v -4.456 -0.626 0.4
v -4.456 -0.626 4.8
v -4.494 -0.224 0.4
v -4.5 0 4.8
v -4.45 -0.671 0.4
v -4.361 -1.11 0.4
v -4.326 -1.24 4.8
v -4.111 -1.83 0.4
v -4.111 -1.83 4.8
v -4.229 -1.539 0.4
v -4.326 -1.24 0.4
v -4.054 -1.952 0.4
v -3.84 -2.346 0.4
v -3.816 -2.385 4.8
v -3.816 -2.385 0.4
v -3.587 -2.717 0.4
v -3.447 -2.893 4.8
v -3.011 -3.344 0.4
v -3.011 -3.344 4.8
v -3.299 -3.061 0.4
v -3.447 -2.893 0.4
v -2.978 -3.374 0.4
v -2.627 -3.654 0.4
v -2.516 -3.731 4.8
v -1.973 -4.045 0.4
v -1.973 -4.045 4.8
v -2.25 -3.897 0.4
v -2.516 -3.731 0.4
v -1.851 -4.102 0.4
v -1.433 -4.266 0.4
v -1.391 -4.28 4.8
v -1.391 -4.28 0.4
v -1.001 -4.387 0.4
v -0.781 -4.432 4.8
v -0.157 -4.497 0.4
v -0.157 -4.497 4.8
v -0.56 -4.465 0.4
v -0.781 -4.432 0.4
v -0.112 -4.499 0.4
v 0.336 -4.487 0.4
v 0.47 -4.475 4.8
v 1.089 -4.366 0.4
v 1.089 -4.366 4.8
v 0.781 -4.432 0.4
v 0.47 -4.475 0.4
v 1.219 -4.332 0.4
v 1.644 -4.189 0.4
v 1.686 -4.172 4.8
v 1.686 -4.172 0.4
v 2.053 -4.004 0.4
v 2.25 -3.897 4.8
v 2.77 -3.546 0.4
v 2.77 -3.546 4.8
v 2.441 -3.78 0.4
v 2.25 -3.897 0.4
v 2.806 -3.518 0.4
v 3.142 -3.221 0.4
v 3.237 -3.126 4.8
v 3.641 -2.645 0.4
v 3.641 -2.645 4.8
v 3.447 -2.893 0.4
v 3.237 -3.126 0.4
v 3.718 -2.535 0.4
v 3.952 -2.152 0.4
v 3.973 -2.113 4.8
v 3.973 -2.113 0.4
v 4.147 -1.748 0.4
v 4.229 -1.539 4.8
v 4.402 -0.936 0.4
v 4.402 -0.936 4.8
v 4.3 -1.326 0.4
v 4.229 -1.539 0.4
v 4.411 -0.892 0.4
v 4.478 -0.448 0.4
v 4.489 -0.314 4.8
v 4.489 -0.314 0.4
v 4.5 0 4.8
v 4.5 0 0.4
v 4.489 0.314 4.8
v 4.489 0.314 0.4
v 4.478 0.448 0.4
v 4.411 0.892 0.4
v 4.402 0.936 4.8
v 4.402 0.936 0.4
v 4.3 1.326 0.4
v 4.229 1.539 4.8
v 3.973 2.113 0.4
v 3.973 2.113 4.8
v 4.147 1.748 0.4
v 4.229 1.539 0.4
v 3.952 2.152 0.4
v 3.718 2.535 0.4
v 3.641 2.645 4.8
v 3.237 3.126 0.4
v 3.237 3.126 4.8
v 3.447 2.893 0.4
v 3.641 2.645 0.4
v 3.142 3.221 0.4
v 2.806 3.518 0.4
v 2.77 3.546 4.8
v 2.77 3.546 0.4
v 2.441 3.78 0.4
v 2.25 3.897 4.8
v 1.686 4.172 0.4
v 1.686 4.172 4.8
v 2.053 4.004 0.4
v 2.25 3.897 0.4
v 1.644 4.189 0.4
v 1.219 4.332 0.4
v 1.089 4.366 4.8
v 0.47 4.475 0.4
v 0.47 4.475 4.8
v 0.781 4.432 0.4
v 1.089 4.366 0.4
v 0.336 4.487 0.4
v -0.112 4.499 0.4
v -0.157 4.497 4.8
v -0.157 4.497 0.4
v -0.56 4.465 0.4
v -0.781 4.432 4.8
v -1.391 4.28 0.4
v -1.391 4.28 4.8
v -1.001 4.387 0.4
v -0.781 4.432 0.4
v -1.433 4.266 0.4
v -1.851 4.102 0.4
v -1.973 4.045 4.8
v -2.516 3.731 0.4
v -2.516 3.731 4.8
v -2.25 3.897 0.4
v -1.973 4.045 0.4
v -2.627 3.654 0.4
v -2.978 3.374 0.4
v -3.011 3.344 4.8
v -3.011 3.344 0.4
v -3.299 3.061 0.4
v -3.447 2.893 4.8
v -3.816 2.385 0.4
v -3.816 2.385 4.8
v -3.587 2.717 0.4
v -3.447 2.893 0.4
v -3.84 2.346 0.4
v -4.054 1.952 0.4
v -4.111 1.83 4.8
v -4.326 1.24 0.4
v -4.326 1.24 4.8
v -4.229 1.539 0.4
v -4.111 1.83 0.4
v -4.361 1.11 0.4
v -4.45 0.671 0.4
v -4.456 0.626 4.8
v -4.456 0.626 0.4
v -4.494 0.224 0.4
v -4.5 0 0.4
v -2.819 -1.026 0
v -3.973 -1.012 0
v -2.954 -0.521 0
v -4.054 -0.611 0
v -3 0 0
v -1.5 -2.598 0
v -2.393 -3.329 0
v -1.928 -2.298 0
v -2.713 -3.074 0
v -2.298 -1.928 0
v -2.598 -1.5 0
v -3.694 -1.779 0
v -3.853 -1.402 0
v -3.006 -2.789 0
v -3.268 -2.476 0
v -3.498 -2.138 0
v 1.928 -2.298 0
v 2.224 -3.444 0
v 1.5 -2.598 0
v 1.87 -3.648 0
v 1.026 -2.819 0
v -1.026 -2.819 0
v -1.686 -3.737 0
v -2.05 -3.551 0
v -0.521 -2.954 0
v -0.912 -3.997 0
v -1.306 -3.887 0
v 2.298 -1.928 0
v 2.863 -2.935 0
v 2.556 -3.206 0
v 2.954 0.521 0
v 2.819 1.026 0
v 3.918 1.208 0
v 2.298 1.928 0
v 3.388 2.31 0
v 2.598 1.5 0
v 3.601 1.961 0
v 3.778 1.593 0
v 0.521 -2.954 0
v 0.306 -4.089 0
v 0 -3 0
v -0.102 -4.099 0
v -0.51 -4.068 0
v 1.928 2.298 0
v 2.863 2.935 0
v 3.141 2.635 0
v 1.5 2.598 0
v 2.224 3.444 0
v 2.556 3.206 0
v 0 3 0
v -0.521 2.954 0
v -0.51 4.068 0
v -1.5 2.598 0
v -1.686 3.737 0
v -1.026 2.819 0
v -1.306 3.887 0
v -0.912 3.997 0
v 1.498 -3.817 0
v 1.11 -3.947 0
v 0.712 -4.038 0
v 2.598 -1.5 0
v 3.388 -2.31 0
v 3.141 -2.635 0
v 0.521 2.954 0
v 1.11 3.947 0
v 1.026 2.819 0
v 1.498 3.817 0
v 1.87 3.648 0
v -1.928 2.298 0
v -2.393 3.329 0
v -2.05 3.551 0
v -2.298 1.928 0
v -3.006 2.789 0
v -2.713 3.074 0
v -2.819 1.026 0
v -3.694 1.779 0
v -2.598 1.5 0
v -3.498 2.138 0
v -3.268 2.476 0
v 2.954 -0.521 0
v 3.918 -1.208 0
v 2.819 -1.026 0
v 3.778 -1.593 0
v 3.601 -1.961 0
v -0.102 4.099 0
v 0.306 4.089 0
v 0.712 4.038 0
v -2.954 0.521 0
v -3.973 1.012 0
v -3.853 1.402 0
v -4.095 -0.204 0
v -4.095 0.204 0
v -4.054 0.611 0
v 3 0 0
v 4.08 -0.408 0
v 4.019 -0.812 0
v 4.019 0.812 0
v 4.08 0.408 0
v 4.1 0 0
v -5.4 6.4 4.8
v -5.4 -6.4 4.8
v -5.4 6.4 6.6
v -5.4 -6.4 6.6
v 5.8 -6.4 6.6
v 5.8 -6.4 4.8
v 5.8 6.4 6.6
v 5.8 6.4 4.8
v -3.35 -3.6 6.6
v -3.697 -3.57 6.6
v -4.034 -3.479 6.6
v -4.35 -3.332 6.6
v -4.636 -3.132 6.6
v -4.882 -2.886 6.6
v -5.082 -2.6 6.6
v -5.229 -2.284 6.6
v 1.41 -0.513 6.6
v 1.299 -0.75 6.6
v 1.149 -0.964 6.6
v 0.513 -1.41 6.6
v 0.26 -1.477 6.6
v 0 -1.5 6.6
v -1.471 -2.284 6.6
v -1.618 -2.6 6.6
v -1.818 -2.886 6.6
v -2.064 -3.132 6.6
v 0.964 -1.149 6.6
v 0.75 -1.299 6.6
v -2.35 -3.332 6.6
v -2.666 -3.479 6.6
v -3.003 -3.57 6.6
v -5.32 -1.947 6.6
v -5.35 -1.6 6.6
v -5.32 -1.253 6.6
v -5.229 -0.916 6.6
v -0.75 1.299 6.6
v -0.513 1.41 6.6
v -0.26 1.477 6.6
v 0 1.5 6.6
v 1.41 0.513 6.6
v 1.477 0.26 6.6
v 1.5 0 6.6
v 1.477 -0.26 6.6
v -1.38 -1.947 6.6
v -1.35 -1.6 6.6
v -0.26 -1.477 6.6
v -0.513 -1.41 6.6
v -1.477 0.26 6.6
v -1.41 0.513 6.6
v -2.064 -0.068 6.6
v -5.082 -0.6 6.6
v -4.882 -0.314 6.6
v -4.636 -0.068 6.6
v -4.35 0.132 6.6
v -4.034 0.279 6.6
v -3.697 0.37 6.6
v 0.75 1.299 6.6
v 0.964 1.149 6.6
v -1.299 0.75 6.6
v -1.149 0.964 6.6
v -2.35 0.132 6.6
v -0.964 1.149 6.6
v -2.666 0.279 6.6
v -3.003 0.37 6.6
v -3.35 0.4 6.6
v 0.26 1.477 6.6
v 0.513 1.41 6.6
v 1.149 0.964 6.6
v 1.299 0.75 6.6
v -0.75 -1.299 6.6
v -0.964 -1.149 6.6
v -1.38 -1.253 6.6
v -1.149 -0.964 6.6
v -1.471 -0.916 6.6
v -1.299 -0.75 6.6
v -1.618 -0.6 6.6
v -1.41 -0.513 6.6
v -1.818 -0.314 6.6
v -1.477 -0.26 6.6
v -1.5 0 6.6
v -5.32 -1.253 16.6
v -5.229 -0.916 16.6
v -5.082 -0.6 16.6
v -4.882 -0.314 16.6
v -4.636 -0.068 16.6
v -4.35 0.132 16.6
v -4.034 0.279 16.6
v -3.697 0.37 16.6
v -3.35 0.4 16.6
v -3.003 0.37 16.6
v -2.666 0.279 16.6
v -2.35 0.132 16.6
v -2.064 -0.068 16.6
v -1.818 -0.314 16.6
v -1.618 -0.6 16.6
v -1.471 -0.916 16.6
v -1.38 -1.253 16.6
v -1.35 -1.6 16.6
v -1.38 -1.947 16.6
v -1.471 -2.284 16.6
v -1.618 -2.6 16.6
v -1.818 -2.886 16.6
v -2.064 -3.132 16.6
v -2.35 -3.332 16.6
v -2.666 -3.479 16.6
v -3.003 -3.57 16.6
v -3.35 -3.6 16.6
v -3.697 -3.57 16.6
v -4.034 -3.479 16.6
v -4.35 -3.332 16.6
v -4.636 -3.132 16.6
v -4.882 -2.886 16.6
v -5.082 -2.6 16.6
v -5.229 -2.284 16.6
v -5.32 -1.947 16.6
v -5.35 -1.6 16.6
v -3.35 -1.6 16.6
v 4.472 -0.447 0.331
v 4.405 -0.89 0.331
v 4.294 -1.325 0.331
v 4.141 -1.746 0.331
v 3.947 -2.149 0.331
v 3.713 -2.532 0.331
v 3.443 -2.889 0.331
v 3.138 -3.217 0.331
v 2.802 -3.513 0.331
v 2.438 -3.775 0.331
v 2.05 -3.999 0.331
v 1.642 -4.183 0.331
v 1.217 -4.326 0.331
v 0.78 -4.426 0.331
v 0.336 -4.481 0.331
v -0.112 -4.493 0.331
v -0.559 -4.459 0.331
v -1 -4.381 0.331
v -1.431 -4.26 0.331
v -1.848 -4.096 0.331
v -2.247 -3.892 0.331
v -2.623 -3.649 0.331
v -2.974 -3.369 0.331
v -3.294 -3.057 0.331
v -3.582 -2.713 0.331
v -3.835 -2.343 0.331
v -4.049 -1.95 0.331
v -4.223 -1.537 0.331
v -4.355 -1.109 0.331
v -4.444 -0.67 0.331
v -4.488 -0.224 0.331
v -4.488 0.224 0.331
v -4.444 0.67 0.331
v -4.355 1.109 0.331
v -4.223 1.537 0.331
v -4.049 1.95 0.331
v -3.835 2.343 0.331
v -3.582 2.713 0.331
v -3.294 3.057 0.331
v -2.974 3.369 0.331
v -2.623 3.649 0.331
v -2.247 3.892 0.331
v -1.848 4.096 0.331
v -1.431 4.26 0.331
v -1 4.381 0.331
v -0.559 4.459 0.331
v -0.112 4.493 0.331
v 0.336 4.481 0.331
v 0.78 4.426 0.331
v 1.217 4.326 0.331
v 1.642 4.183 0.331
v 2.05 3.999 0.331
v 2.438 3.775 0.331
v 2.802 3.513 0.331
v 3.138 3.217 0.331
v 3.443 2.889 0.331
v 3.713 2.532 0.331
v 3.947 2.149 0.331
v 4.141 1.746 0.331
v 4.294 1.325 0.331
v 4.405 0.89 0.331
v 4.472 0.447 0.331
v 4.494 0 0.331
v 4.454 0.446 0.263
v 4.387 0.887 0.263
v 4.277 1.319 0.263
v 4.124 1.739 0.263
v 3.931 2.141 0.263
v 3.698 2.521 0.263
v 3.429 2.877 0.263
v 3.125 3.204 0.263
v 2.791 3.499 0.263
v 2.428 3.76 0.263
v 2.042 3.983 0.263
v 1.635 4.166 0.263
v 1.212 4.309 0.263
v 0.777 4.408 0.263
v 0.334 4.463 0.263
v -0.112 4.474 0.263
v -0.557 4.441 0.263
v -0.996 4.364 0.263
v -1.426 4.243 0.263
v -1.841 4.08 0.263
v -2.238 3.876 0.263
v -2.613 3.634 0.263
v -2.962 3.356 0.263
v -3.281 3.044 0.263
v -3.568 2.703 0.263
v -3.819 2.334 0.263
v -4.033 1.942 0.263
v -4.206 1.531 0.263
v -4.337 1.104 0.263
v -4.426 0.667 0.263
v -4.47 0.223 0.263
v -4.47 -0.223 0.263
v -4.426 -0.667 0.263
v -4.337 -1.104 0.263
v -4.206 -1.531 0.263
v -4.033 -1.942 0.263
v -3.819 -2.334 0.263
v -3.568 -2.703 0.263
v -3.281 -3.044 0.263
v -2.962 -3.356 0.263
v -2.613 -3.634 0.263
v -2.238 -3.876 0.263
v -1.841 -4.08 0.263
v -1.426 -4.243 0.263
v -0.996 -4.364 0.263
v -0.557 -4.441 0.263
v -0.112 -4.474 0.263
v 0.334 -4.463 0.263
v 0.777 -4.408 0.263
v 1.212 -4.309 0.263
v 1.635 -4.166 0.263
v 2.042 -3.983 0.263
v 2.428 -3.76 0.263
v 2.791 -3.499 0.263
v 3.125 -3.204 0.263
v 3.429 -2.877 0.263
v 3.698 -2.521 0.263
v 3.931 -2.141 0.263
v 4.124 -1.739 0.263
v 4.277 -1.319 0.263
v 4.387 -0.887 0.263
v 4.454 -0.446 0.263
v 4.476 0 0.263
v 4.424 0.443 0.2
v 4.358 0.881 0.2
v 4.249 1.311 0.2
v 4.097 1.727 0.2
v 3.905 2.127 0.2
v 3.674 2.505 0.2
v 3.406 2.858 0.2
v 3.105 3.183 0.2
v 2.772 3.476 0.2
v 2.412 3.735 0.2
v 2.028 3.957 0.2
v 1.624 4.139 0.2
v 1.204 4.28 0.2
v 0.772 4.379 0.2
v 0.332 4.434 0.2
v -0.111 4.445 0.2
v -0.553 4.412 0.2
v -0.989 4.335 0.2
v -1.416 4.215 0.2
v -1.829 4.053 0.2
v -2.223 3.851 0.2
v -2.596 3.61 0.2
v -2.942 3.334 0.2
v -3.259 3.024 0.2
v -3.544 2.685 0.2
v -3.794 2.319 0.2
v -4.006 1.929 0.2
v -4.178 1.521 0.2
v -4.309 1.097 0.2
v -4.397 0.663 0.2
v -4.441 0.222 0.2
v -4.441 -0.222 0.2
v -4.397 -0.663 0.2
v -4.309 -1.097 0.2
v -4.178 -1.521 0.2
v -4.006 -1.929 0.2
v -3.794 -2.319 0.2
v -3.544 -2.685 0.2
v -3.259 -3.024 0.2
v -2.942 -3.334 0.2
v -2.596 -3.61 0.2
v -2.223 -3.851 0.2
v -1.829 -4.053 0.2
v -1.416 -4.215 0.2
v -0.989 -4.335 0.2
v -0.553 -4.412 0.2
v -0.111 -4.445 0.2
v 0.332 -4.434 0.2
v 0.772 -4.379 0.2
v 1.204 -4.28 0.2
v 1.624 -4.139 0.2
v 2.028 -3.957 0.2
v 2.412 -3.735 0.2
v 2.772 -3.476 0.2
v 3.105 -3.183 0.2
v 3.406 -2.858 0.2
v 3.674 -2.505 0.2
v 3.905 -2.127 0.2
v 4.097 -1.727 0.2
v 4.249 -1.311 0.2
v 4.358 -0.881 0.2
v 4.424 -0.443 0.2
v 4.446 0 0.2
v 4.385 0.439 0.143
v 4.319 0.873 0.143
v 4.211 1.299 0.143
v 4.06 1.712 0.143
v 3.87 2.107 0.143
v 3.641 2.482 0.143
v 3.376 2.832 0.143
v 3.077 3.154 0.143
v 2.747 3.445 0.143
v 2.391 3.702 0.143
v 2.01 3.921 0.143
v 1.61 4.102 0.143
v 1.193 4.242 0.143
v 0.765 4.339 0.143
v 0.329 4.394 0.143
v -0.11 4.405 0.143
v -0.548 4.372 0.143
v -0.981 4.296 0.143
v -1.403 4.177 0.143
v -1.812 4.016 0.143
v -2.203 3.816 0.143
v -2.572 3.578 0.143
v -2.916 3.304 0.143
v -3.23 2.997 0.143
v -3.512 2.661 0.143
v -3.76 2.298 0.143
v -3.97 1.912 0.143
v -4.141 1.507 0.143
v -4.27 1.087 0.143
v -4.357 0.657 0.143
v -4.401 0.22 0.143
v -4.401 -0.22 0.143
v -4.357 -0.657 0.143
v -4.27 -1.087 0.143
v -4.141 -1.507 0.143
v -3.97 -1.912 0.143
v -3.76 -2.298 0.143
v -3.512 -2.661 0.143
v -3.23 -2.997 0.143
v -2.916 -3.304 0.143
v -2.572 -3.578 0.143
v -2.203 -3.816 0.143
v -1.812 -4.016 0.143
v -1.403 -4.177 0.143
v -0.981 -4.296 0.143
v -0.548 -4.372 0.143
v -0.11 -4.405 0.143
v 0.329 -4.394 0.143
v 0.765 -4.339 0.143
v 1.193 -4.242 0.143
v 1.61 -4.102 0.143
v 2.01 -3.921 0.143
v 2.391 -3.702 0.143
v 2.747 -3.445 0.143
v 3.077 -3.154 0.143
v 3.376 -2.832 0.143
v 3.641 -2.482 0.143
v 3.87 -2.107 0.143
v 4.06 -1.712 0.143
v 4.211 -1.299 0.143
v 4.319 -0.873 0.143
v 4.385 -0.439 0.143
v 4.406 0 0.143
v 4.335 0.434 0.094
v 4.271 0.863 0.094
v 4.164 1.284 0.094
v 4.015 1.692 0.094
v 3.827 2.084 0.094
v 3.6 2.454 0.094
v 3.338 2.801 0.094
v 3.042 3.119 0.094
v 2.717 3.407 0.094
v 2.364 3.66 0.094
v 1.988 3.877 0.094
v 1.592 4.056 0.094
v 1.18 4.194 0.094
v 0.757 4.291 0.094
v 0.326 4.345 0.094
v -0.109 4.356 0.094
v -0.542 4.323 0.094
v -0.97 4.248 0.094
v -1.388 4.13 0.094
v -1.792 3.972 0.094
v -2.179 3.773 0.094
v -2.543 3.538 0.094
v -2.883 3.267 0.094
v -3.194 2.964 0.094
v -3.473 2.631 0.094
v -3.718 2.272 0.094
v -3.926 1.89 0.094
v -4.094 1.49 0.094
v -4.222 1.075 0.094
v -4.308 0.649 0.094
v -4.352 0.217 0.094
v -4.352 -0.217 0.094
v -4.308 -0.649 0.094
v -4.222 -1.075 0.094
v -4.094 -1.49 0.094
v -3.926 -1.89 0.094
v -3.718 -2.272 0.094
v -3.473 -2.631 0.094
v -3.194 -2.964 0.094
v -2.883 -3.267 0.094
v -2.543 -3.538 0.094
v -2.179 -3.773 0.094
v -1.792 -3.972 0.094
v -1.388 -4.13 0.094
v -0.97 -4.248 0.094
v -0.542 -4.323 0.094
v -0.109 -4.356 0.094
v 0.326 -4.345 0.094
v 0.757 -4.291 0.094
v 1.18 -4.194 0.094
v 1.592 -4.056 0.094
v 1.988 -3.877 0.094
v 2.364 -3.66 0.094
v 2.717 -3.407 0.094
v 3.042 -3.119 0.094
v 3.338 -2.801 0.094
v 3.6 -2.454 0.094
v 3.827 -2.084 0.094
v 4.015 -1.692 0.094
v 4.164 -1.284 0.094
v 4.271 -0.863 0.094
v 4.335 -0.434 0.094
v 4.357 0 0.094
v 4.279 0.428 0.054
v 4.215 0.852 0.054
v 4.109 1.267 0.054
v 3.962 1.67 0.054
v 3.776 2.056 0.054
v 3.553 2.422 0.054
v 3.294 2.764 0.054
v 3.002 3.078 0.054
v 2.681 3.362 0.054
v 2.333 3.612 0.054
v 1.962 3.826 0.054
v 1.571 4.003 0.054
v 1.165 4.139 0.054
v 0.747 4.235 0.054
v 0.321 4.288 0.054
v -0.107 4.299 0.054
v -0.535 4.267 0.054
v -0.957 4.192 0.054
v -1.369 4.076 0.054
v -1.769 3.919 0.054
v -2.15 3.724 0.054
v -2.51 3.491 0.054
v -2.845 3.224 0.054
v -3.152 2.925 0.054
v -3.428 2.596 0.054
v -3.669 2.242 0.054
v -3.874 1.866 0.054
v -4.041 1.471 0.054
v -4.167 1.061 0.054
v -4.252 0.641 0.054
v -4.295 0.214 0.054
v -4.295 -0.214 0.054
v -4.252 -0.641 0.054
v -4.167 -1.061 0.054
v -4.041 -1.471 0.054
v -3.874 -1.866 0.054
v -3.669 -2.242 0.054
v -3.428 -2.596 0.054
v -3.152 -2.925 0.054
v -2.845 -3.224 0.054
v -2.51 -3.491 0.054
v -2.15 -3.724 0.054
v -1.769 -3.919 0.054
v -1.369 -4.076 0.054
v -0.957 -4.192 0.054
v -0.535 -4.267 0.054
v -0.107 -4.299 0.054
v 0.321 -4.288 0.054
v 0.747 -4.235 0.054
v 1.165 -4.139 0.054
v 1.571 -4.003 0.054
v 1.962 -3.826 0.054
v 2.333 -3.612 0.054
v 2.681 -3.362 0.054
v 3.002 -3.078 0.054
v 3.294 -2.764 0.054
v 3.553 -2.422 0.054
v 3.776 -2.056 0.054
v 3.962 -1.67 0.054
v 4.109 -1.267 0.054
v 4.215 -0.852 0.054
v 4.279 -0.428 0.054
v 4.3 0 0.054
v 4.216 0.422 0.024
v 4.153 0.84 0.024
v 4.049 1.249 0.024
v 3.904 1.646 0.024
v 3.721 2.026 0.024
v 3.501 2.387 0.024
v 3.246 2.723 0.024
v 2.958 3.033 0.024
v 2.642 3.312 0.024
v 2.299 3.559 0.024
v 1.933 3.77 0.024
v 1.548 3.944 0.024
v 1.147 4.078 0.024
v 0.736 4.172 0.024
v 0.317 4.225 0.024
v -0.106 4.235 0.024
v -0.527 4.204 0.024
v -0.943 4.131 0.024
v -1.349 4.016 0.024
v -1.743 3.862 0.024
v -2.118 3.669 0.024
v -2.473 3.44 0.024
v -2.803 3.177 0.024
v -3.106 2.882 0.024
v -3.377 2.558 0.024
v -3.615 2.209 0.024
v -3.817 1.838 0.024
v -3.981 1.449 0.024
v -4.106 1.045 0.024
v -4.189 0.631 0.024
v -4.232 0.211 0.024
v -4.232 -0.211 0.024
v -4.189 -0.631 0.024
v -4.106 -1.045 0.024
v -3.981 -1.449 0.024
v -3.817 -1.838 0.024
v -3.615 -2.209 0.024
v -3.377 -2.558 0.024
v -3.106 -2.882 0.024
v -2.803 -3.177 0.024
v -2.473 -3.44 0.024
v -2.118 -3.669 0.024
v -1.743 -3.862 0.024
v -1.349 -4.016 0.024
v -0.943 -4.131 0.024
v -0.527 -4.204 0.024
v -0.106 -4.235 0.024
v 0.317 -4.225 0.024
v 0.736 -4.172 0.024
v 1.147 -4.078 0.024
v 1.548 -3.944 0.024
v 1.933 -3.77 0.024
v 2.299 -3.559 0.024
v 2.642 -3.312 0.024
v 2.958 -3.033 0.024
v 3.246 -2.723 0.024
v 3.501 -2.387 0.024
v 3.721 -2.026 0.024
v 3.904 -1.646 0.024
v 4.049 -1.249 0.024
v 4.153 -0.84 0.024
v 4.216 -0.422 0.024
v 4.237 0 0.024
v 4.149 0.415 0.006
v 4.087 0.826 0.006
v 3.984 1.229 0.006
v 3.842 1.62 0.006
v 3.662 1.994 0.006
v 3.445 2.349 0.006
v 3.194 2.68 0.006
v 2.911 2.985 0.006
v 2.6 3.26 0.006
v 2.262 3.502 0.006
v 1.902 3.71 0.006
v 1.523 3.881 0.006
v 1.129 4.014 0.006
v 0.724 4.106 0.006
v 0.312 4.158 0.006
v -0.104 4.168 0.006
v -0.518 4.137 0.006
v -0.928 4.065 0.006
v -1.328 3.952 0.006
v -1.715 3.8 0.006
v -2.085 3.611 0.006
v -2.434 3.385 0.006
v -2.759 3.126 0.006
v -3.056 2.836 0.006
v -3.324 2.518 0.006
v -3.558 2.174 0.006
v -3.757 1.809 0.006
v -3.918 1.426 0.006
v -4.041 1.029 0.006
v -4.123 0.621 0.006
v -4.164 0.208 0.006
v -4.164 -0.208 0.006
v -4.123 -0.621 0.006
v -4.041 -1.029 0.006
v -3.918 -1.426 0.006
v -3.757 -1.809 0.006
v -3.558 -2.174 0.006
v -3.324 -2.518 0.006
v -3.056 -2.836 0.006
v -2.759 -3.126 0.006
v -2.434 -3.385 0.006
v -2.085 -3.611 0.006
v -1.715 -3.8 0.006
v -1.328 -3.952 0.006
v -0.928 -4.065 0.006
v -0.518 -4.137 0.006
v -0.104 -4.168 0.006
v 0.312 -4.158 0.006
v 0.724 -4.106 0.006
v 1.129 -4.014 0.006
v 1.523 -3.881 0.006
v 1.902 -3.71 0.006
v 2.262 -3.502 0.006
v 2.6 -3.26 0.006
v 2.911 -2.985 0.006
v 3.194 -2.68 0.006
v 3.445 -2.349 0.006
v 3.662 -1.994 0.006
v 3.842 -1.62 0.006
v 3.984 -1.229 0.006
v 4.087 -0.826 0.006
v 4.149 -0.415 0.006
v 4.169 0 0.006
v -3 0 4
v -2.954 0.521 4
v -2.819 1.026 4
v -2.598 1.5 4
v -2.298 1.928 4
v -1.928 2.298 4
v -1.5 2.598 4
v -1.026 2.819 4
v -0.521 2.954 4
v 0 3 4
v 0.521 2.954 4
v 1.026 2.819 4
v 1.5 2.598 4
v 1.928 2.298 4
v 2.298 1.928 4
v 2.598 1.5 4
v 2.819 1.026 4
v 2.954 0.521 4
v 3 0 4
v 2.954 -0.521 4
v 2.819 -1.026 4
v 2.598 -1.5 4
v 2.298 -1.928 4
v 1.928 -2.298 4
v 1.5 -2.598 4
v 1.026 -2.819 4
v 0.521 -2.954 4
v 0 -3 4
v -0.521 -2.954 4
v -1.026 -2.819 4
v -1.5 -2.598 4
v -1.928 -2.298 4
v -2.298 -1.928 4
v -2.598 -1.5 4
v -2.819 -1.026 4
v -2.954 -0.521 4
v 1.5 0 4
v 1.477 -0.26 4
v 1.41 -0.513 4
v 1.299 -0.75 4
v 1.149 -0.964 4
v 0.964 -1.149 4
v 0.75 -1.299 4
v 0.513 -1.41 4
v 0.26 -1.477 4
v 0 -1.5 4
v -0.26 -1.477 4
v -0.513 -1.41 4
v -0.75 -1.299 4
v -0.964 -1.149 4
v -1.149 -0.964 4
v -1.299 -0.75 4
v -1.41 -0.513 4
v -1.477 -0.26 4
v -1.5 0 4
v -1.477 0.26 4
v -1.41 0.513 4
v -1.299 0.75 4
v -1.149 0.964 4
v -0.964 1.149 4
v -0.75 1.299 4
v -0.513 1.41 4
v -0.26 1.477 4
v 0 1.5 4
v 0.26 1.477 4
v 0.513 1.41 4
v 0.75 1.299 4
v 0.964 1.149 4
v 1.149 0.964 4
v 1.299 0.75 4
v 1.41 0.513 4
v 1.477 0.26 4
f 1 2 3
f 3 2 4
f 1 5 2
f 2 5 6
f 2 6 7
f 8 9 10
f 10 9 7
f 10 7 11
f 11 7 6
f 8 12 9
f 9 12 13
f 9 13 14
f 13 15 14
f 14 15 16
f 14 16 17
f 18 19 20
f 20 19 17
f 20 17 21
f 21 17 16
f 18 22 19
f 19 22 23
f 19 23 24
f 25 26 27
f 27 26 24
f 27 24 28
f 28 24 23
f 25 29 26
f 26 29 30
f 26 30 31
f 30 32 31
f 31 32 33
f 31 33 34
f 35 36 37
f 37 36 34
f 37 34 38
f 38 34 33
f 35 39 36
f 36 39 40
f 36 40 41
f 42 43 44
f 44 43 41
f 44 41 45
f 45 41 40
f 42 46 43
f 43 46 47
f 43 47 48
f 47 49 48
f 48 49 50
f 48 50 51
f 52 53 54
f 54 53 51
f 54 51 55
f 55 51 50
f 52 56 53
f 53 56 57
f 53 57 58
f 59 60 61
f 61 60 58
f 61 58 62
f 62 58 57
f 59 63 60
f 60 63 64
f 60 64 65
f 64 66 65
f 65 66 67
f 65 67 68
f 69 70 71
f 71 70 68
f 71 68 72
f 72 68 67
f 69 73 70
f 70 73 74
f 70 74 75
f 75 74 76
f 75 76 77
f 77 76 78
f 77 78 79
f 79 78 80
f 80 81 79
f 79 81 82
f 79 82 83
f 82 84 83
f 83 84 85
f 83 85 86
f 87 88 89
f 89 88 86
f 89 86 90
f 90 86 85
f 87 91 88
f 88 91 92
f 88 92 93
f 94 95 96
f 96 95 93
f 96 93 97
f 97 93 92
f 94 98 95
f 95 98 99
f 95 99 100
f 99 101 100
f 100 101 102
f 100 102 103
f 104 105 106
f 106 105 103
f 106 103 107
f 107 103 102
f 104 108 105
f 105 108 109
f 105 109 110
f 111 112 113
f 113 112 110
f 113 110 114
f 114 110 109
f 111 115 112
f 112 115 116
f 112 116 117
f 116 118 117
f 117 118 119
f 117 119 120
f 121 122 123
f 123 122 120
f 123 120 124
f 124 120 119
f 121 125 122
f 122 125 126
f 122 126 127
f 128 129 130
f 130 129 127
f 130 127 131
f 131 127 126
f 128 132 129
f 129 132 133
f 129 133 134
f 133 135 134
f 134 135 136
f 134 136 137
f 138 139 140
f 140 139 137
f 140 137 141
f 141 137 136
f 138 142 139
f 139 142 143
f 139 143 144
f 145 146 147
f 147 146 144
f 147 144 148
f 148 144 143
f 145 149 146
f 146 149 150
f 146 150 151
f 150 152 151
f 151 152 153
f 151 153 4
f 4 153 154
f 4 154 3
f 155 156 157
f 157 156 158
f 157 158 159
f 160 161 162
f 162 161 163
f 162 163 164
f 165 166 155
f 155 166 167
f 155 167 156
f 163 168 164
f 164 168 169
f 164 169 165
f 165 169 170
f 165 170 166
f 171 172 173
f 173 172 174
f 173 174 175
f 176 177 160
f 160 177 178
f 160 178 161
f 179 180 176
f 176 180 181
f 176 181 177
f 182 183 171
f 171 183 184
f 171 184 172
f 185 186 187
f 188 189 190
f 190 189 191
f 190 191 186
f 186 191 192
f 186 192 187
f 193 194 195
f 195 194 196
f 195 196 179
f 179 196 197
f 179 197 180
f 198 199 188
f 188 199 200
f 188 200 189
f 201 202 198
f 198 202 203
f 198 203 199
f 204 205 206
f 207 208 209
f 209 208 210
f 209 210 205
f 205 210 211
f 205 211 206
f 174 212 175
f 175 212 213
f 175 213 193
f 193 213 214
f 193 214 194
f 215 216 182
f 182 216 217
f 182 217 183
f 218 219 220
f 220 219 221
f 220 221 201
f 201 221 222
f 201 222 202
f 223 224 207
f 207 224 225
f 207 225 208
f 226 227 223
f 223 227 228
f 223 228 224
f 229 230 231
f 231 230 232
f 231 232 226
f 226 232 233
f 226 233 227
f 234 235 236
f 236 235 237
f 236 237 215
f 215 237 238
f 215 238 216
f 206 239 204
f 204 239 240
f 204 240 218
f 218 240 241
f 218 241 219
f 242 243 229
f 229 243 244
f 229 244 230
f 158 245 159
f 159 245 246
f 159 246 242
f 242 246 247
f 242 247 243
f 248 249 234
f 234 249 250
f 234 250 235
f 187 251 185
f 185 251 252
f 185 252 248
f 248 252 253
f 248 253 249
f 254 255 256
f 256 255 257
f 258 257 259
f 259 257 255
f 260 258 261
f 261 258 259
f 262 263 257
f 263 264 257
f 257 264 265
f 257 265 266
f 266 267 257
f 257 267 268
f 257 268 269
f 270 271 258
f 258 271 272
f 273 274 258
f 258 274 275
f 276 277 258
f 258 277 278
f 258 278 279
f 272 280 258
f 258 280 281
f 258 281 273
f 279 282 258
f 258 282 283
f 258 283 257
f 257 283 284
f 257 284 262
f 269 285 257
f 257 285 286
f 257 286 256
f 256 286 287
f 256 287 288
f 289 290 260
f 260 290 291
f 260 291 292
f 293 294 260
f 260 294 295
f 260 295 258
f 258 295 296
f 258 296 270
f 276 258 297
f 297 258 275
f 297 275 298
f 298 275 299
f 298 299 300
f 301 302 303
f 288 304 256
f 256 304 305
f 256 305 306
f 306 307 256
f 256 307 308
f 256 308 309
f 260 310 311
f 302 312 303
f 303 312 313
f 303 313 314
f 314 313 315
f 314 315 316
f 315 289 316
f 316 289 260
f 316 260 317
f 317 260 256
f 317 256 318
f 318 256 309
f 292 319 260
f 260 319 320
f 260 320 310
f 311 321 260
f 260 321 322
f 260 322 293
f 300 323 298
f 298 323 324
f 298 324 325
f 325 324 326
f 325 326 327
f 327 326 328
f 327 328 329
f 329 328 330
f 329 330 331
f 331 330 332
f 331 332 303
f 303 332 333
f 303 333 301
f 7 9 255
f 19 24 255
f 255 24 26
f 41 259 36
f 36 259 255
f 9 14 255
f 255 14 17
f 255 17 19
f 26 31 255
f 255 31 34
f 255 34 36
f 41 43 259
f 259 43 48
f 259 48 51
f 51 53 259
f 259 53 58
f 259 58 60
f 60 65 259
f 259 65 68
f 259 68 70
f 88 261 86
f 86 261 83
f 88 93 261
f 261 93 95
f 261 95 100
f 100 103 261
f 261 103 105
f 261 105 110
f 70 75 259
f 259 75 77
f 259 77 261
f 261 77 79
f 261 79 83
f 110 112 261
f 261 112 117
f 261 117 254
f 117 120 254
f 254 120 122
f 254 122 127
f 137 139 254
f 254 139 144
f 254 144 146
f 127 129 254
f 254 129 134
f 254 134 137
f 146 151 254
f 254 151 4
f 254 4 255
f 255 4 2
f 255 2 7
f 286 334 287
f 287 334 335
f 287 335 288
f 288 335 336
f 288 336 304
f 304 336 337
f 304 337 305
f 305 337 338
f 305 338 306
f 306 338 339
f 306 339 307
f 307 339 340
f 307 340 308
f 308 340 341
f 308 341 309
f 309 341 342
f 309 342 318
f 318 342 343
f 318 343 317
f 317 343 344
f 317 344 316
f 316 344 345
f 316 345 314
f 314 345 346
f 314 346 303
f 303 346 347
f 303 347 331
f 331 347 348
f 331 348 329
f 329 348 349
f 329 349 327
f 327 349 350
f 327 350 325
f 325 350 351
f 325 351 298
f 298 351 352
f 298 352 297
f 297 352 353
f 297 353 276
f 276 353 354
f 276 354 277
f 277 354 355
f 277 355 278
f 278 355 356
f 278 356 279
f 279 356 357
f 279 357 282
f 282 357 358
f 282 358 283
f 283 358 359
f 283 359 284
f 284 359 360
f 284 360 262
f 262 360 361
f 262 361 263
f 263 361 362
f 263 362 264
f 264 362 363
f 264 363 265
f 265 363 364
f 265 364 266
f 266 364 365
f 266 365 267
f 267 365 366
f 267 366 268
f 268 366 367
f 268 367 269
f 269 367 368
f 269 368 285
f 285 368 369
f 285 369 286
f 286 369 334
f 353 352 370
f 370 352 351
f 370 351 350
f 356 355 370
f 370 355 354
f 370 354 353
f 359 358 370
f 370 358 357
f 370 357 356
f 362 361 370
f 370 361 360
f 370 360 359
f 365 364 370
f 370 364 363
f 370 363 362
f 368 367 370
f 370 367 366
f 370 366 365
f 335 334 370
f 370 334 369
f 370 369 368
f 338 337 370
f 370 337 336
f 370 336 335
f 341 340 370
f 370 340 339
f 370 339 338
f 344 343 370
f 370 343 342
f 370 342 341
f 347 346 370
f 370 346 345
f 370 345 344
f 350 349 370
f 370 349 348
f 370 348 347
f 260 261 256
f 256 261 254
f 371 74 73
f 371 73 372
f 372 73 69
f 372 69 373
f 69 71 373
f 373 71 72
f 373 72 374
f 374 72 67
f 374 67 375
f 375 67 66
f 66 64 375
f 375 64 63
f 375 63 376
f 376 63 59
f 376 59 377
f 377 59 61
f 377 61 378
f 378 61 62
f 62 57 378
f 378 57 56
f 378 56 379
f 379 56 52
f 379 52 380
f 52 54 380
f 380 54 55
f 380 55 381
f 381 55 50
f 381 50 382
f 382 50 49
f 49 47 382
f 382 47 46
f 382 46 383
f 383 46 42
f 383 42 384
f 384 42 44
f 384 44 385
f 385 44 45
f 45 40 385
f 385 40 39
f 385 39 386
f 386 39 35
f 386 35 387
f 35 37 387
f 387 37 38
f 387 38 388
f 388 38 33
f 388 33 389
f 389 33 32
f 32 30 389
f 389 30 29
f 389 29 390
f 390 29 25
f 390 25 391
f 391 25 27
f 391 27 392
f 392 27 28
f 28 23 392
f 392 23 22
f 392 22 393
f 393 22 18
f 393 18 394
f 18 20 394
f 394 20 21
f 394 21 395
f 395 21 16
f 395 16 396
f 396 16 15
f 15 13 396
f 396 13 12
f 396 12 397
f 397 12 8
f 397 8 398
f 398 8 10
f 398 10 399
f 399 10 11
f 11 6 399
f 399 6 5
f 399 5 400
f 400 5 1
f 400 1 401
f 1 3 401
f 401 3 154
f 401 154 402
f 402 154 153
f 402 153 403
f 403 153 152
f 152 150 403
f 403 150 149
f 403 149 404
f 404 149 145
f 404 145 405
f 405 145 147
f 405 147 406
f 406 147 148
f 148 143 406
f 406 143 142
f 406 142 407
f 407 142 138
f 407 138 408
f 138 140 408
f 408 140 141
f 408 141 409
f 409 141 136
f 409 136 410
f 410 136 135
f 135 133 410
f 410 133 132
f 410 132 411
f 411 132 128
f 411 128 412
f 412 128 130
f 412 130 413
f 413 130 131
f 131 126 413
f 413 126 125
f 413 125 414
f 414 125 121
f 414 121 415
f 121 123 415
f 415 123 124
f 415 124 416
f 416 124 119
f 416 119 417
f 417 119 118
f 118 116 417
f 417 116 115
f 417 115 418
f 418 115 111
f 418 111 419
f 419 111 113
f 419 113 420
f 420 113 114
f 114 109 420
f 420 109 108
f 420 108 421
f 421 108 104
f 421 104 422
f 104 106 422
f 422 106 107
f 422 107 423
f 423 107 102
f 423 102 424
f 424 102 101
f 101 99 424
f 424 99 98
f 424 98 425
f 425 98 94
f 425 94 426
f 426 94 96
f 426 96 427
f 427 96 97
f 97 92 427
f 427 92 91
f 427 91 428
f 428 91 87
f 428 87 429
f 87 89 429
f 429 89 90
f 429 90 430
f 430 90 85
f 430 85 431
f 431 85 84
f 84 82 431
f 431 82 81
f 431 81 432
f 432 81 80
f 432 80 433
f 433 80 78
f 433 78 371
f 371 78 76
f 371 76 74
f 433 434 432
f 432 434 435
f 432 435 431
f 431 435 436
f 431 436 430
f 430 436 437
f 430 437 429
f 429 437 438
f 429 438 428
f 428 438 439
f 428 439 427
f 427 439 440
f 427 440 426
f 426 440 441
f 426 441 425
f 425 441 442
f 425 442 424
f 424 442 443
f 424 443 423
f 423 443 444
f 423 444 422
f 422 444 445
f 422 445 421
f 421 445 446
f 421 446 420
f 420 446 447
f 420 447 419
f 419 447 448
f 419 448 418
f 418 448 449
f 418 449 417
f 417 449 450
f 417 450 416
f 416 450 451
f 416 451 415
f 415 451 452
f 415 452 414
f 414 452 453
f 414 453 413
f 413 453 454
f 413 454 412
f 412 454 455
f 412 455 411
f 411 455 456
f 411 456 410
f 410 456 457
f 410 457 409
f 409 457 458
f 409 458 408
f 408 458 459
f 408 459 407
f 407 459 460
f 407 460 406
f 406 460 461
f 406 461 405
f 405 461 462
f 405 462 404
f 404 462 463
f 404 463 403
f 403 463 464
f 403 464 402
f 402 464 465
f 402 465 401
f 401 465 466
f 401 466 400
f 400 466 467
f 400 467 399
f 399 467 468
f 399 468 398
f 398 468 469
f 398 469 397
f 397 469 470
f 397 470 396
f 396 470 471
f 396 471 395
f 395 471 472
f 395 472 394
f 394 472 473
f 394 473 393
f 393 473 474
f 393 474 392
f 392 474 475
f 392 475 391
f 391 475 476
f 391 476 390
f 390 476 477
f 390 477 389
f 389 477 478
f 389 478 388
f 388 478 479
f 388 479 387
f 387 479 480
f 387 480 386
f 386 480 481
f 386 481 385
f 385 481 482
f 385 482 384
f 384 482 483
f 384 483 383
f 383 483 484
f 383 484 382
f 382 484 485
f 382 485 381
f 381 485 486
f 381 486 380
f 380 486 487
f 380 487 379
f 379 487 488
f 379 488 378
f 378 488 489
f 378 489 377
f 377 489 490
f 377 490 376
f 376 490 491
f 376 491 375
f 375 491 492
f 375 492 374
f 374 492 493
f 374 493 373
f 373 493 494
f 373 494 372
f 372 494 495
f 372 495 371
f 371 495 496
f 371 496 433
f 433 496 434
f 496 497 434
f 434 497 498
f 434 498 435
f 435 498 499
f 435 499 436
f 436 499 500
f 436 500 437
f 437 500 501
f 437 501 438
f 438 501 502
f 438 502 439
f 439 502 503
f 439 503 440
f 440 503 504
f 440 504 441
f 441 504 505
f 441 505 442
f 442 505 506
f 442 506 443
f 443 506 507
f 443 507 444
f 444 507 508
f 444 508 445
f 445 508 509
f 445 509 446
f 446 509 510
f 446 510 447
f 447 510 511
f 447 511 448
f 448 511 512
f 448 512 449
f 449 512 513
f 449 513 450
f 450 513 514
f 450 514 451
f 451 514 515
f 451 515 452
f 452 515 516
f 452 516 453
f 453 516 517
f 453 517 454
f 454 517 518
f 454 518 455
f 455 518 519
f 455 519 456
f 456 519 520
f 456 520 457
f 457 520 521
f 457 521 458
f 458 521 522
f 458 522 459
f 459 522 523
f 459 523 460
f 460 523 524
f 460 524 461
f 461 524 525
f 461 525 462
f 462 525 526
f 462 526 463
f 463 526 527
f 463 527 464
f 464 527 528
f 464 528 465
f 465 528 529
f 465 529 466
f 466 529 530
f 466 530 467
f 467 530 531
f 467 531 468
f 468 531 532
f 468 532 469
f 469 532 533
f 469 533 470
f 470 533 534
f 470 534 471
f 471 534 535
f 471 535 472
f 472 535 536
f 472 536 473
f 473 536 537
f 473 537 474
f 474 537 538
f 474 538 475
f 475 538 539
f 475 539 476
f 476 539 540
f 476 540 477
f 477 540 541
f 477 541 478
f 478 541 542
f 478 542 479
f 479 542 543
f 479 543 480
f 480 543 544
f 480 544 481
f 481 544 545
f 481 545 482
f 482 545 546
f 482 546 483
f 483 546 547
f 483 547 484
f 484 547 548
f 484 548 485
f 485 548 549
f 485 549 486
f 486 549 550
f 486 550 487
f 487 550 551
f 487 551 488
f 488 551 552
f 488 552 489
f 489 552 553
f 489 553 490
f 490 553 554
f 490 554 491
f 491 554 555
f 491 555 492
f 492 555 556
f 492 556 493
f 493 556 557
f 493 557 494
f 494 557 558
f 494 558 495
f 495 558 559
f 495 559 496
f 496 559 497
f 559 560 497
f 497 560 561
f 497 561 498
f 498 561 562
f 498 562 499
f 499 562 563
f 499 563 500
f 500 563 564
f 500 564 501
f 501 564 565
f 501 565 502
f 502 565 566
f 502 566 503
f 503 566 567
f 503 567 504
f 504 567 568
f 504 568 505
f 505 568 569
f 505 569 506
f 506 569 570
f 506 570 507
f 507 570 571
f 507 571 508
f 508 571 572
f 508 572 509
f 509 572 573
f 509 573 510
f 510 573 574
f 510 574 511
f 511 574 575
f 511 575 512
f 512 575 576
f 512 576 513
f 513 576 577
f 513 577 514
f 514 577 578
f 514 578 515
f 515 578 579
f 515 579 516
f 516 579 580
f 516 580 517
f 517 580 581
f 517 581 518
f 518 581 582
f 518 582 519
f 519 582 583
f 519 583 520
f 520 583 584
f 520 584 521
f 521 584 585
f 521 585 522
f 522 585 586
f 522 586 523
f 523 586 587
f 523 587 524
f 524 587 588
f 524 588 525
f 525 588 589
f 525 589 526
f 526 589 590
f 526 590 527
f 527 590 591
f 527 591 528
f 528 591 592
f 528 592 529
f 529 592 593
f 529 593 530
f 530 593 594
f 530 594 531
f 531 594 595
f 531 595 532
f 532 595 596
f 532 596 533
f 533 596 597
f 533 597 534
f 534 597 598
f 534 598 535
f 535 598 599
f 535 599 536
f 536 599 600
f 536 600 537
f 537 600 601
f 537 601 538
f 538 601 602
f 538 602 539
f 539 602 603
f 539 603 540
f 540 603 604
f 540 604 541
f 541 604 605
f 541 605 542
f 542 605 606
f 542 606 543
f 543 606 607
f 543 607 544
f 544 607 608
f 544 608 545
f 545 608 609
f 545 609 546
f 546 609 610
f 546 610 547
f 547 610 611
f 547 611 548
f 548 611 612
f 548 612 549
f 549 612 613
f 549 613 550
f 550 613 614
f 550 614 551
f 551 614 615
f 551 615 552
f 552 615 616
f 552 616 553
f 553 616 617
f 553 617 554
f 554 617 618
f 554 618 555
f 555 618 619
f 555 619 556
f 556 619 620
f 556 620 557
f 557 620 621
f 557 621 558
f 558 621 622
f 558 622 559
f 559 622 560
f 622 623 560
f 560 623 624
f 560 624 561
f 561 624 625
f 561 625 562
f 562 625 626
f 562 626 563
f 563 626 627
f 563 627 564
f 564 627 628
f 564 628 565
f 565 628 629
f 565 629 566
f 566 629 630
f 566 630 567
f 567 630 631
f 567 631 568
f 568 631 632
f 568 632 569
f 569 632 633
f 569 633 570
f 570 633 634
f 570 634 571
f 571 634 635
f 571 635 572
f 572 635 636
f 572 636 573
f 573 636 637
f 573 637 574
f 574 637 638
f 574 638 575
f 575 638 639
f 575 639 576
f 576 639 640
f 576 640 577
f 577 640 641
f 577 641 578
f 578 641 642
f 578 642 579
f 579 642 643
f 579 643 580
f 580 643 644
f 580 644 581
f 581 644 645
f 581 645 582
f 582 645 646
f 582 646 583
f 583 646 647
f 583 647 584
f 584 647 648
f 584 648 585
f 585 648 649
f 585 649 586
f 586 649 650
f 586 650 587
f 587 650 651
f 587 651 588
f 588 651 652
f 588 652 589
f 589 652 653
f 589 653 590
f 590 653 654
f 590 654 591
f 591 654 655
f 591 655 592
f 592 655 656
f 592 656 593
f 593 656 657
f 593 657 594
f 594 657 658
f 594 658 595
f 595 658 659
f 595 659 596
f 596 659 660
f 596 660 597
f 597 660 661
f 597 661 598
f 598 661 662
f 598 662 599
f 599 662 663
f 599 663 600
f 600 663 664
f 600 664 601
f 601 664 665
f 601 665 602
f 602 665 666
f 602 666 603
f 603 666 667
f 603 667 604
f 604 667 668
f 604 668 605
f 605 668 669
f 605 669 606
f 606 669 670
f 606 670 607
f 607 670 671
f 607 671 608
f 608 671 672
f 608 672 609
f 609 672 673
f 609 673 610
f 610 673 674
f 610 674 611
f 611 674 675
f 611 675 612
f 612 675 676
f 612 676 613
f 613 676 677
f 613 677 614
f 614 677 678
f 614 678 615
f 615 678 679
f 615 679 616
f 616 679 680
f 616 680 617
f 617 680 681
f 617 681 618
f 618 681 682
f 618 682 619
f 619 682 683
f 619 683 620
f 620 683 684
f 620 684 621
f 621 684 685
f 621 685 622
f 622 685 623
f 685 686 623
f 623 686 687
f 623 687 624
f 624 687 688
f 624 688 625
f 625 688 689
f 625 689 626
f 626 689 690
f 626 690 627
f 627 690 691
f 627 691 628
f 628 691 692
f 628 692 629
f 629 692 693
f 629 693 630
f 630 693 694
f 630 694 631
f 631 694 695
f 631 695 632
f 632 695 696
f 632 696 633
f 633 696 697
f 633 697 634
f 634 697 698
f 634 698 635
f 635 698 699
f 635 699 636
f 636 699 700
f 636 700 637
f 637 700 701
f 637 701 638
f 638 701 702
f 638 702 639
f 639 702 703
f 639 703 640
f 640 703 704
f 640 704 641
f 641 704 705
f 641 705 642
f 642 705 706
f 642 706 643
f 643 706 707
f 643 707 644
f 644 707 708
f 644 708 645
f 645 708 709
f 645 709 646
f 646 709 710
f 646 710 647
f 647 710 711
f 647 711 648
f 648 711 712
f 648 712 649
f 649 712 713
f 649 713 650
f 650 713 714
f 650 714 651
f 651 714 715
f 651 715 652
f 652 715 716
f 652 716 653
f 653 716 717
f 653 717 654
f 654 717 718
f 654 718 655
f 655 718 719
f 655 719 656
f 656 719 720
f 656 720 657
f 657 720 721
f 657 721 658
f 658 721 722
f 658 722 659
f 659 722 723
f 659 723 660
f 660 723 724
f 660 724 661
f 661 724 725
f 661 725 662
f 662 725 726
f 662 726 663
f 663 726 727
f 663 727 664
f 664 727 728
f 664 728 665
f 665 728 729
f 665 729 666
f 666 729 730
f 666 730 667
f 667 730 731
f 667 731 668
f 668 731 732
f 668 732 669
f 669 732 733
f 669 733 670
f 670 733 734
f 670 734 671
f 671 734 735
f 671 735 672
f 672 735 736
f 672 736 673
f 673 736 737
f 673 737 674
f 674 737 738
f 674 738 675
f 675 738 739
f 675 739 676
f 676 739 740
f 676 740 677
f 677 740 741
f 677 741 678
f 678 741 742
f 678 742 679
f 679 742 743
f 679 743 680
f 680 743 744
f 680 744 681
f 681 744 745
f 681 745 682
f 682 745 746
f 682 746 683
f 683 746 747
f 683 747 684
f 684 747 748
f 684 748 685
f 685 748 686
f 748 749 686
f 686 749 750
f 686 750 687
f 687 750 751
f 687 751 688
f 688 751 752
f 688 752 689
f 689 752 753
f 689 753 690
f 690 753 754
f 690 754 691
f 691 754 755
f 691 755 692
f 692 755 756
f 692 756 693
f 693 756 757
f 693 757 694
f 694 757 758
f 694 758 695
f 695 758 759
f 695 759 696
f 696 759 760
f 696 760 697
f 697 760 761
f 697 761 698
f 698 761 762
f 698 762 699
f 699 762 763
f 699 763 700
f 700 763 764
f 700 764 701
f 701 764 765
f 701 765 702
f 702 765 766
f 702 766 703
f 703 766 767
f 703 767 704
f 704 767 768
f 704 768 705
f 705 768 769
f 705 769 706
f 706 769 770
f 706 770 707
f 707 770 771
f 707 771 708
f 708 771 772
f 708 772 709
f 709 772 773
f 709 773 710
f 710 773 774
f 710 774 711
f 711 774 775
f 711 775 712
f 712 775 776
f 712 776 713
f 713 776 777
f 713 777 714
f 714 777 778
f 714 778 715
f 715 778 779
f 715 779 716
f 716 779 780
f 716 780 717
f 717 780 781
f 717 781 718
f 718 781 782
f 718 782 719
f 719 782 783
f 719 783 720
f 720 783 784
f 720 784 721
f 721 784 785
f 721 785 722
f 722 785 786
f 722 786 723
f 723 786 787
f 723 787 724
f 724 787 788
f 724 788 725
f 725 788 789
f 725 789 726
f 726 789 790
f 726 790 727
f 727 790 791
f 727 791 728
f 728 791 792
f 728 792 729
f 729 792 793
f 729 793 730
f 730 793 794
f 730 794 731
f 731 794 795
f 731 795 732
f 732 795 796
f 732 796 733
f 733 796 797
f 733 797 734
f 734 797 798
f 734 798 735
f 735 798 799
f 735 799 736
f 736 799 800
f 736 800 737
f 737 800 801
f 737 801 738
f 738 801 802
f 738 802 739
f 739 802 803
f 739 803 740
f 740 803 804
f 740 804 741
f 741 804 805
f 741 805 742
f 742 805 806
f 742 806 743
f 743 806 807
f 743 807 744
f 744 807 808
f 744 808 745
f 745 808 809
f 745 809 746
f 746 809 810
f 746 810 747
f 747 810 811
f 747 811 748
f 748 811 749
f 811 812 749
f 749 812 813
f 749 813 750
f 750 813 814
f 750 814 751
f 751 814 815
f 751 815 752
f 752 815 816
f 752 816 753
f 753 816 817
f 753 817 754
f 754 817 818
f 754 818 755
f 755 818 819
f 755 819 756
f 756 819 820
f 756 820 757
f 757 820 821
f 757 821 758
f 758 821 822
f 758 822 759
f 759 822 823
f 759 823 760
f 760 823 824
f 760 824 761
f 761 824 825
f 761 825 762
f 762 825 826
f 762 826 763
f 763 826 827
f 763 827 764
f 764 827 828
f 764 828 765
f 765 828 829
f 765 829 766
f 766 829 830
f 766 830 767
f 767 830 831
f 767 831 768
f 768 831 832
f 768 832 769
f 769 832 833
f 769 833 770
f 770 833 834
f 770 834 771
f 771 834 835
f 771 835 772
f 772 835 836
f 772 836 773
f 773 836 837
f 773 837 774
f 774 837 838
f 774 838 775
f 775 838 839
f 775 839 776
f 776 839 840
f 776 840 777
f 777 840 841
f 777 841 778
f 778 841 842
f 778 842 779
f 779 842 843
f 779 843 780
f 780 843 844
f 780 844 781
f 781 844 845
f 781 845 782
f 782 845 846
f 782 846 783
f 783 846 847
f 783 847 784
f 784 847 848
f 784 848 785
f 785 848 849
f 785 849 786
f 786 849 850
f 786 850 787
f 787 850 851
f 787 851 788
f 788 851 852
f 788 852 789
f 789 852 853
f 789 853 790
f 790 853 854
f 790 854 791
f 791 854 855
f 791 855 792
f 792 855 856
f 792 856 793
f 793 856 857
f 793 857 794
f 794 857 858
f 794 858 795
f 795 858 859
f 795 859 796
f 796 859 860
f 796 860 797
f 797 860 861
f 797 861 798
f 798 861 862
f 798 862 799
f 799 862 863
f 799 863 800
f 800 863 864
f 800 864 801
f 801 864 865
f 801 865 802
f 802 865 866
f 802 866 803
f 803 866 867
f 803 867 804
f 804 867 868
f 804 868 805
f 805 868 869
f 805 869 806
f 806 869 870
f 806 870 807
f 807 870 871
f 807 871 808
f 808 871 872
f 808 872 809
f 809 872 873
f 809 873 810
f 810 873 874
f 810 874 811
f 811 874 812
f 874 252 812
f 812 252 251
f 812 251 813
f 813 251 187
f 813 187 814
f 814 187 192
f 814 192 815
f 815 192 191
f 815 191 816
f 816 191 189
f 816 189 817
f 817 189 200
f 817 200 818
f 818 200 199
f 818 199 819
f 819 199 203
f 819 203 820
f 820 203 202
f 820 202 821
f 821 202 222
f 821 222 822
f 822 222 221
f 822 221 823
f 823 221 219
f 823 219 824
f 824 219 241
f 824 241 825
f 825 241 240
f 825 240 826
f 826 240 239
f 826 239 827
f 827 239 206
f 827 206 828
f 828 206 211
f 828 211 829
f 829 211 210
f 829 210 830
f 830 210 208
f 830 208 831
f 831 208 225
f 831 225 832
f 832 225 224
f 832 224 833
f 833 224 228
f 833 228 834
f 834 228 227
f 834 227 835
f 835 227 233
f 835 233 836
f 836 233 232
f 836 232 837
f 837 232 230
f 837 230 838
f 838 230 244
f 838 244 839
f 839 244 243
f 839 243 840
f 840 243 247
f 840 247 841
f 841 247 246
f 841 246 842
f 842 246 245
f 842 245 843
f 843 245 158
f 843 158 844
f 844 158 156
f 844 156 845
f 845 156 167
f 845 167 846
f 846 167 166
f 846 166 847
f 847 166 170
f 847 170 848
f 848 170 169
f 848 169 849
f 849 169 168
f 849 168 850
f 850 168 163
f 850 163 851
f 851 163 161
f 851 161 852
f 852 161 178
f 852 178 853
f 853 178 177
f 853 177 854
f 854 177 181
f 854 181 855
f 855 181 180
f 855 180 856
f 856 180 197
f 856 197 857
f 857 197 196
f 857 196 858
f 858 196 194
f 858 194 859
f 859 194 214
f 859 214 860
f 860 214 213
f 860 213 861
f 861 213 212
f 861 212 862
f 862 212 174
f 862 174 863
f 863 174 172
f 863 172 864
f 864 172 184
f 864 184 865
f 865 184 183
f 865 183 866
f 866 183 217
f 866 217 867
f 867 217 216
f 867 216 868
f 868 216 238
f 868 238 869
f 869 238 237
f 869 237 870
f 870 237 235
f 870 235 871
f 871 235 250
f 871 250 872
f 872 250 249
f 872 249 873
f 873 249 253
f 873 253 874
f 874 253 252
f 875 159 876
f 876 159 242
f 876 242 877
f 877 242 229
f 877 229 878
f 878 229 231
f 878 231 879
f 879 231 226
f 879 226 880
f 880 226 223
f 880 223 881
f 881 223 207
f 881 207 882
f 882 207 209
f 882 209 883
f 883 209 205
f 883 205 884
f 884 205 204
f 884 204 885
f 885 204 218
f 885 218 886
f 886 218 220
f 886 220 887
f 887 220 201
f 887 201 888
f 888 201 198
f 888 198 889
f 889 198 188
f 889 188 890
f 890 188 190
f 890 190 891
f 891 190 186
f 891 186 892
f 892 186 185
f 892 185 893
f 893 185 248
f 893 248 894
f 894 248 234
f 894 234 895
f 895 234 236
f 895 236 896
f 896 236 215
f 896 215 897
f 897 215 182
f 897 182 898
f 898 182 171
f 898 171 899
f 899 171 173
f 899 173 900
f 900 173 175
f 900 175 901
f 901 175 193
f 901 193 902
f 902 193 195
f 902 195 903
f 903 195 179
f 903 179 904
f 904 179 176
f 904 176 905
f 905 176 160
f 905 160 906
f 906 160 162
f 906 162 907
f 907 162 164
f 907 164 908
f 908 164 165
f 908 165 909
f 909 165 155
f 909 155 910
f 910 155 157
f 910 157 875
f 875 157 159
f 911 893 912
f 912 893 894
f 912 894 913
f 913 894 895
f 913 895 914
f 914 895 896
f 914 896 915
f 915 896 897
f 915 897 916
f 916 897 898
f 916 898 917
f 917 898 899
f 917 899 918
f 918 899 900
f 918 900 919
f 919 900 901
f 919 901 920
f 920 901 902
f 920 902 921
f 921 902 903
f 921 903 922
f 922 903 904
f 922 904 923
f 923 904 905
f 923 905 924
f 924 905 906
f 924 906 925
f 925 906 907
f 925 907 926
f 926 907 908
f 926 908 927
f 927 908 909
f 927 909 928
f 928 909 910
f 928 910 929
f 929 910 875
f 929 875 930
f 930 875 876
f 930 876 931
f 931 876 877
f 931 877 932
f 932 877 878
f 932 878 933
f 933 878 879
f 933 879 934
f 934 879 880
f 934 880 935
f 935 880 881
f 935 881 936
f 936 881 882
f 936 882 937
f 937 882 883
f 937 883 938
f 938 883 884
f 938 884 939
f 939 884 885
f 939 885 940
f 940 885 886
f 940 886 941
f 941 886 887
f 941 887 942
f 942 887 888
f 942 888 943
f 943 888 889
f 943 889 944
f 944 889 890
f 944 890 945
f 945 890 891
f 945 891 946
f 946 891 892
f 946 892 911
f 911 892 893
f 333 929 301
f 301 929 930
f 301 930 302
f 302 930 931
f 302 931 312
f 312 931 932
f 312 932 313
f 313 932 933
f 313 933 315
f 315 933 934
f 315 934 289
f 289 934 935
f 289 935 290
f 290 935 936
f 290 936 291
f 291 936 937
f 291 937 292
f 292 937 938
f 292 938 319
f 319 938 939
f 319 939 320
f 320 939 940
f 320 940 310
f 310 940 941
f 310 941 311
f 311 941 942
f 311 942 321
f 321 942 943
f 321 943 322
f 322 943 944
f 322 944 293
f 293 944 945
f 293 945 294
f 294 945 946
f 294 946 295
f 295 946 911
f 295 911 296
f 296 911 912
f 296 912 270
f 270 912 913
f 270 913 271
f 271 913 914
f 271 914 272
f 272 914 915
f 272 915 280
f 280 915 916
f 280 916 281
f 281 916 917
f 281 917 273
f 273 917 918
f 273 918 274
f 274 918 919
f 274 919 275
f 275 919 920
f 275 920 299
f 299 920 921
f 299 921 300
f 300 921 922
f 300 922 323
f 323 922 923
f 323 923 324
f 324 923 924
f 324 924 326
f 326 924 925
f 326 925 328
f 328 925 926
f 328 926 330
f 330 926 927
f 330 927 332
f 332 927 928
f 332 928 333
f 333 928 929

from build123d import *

# Parameters (mm, degrees)
SKETCH_1_R          = 4.5
EXTRUDE_1_DEPTH     = 4.8
SKETCH_2_W          = 11.2
SKETCH_2_H          = 13.8
EXTRUDE_2_DEPTH     = 1.8
SKETCH_4_R          = 2
EXTRUDE_5_DEPTH     = 10
SKETCH_6_W          = 11.2
SKETCH_6_H          = 1
CUT_EXTRUDE_2_DEPTH = 2
FILLET_1_R          = 0.4
SKETCH_3_R          = 3
CUT_EXTRUDE_1_DEPTH = 4
SKETCH_7_R          = 1.5
CUT_EXTRUDE_3_DEPTH = 16.276125163


with BuildPart() as part:
    # Эскиз1 → Бобышка-Вытянуть1 (new body)
    with BuildSketch(Plane.XY):
        Circle(SKETCH_1_R)
    extrude(amount=EXTRUDE_1_DEPTH)

    # Эскиз2 → Бобышка-Вытянуть2 (add)
    with BuildSketch(Plane.XY.offset(4.8)):
        with Locations((0.2, 0.5)):
            Rectangle(SKETCH_2_W, SKETCH_2_H)
    extrude(amount=EXTRUDE_2_DEPTH)

    # Эскиз4 → Бобышка-Вытянуть5 (add)
    with BuildSketch(Plane.XY.offset(6.6)):
        with Locations((-3.35, -1.6)):
            Circle(SKETCH_4_R)
    extrude(amount=EXTRUDE_5_DEPTH)

    # Эскиз6 → Вырез-Вытянуть2 (cut)
    with BuildSketch(Plane.XY.offset(6.6)):
        with Locations((0.2, 6.9)):
            Rectangle(SKETCH_6_W, SKETCH_6_H)
    extrude(amount=-CUT_EXTRUDE_2_DEPTH, mode=Mode.SUBTRACT)

    # Скругление1
    fillet_1_edges = [part.edges().sort_by_distance(p)[0] for p in [
        (-4.5, 0, 0),
    ]]
    fillet(fillet_1_edges, radius=FILLET_1_R)

    # Эскиз3 → Вырез-Вытянуть1 (cut)
    with BuildSketch(Plane(origin=(0, 0, 0), x_dir=(-1, 0, 0), z_dir=(0, 0, -1))):
        Circle(SKETCH_3_R)
    extrude(amount=-CUT_EXTRUDE_1_DEPTH, mode=Mode.SUBTRACT)

    # Эскиз7 → Вырез-Вытянуть3 (cut, through all)
    with BuildSketch(Plane(origin=(0, 0, 4), x_dir=(-1, 0, 0), z_dir=(0, 0, -1))):
        Circle(SKETCH_7_R)
    extrude(amount=-CUT_EXTRUDE_3_DEPTH, mode=Mode.SUBTRACT)


solid = part.part
